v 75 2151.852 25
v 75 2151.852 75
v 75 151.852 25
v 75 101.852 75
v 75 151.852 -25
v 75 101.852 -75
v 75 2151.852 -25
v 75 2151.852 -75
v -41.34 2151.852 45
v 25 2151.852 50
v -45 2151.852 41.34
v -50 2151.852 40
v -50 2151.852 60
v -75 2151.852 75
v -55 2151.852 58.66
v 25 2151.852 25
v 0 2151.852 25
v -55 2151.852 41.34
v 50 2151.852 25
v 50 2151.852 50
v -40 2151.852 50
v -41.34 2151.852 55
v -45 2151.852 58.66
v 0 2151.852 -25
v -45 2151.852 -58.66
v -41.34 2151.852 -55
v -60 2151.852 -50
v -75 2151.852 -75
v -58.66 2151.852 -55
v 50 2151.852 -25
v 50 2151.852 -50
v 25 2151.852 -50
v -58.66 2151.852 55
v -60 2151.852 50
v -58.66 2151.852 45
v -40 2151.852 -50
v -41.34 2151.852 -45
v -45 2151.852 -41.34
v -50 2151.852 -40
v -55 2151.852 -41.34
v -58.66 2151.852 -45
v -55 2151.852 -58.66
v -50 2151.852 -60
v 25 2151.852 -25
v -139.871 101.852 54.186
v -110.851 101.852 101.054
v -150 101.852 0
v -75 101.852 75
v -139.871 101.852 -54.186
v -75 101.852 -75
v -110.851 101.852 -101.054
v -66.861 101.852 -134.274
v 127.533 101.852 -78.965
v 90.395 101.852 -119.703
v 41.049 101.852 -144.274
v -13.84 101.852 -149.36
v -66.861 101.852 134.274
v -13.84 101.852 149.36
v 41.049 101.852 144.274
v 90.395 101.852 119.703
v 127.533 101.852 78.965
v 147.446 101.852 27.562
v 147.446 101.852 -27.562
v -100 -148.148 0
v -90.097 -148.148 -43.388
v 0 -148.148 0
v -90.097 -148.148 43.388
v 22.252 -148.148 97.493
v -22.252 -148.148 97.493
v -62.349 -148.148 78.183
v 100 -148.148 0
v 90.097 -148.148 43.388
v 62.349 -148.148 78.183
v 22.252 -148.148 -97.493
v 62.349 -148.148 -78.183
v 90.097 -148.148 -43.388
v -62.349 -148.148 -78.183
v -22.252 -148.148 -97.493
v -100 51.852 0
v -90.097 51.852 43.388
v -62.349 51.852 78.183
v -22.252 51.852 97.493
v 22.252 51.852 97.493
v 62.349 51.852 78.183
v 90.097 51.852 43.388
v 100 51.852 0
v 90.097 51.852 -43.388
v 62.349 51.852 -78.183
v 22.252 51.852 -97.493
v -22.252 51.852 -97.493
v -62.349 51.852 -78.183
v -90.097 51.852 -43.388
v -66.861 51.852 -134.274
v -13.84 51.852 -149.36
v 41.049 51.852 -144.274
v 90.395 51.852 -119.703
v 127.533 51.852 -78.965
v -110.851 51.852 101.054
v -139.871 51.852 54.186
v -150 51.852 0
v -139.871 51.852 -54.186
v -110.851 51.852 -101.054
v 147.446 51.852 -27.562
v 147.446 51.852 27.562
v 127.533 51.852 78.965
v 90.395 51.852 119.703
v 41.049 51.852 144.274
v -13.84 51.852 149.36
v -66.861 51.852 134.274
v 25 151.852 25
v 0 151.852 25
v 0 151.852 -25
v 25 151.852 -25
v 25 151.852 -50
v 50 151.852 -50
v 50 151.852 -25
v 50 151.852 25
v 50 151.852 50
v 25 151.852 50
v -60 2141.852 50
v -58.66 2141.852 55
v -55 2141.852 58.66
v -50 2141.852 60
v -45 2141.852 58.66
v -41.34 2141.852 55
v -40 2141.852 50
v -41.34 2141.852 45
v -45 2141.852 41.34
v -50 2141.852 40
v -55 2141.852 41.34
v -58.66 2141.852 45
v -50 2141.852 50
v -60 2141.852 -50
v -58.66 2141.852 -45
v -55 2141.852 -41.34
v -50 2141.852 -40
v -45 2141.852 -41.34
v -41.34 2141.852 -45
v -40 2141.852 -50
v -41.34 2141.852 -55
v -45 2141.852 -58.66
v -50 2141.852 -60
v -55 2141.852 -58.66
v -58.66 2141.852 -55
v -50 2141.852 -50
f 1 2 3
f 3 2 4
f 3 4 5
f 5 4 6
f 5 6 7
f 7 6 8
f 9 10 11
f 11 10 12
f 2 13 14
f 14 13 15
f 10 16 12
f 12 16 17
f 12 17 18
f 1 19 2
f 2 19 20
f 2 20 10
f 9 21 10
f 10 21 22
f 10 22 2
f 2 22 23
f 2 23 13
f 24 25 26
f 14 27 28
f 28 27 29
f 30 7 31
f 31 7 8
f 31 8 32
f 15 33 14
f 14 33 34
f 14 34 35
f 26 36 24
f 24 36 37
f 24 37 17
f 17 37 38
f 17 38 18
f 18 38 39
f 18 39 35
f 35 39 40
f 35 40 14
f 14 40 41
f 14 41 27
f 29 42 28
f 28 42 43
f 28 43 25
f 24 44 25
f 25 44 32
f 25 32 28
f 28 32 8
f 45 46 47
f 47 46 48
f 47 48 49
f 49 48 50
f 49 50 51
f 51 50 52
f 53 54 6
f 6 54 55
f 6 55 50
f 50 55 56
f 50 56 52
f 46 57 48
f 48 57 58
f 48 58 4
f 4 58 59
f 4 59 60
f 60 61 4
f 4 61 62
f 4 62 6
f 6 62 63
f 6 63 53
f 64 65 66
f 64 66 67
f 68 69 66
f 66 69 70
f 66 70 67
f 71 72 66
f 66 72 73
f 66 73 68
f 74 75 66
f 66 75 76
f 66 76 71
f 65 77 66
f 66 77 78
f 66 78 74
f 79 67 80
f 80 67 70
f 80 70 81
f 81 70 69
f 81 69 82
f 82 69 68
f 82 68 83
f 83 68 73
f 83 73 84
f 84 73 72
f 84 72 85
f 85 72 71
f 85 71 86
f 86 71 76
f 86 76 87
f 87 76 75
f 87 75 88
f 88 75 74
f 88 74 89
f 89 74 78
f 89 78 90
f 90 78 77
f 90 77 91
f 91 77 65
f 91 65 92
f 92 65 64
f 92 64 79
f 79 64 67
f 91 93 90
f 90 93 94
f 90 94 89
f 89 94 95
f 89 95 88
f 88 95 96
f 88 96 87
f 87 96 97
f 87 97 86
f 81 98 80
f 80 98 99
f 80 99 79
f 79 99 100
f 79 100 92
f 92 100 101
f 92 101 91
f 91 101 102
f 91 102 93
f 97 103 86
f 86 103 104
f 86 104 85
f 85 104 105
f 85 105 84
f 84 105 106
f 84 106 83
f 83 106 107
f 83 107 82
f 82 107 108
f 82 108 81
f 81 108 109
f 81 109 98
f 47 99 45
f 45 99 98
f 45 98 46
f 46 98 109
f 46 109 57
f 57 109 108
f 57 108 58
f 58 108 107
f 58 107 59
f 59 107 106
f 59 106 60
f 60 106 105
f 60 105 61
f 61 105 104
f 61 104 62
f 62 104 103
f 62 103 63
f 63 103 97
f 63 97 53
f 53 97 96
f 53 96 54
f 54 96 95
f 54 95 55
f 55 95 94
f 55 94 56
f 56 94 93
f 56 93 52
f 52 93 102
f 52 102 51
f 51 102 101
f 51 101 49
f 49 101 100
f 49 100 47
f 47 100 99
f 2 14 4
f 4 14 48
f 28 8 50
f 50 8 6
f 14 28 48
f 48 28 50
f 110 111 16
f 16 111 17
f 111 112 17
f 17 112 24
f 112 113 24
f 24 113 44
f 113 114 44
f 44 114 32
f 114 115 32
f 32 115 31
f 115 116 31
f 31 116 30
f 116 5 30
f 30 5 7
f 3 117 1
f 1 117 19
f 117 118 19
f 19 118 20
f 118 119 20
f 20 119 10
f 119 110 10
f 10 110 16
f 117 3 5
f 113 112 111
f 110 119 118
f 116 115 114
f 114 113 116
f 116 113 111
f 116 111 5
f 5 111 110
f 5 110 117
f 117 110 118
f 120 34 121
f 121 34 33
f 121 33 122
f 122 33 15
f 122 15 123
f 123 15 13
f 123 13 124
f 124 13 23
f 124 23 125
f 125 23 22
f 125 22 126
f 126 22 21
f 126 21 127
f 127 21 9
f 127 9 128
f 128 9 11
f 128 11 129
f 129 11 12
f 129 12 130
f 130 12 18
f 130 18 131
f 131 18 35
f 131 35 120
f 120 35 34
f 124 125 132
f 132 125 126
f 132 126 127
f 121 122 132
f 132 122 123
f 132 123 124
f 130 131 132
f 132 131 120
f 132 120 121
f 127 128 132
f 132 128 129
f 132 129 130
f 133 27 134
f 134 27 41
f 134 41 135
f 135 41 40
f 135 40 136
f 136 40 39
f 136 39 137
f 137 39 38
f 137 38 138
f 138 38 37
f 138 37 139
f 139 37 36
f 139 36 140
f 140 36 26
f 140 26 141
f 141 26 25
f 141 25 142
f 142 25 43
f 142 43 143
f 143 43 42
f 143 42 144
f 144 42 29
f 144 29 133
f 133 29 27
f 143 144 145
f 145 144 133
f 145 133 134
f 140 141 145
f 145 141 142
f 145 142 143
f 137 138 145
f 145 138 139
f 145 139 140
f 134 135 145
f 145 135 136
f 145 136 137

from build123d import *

# Parameters (mm, degrees)
SKETCH5_W           = 150
SKETCH5_H           = 150
BOSS_EXTRUDE1_DEPTH = 2050
CUT_EXTRUDE1_DEPTH  = 2000
SKETCH8_R           = 10
CUT_EXTRUDE2_DEPTH  = 10


with BuildPart() as part:
    # Sketch4 → Revolve1 (revolve)
    with BuildSketch(Plane.XY):
        Polygon((0, 101.851851852), (0, -148.148148148), (100, -148.148148148), (100, 51.851851852), (150, 51.851851852), (150, 101.851851852), align=None)
    revolve(axis=Axis((0, 101.851851852, 0), (0, -1, 0)))

    # Sketch5 → Boss-Extrude1 (add)
    with BuildSketch(Plane(origin=(0, 101.851851852, 0), x_dir=(1, 0, 0), z_dir=(0, 1, 0))):
        Rectangle(SKETCH5_W, SKETCH5_H)
    extrude(amount=BOSS_EXTRUDE1_DEPTH)

    # Sketch6 → Cut-Extrude1 (cut)
    with BuildSketch(Plane(origin=(0, 2151.851851852, 0), x_dir=(1, 0, 0), z_dir=(0, 1, 0))):
        Polygon((0, 0), (0, 25), (25, 25), (25, 50), (50, 50), (50, 25), (75, 25), (75, -25), (50, -25), (50, -50), (25, -50), (25, -25), (0, -25), align=None)
    extrude(amount=-CUT_EXTRUDE1_DEPTH, mode=Mode.SUBTRACT)

    # Sketch8 → Cut-Extrude2 (cut)
    with BuildSketch(Plane(origin=(0, 2151.851851852, 0), x_dir=(1, 0, 0), z_dir=(0, 1, 0))):
        with Locations((-50, 50)):
            Circle(SKETCH8_R)
        with Locations((-50, -50)):
            Circle(SKETCH8_R)
    extrude(amount=-CUT_EXTRUDE2_DEPTH, mode=Mode.SUBTRACT)


solid = part.part
